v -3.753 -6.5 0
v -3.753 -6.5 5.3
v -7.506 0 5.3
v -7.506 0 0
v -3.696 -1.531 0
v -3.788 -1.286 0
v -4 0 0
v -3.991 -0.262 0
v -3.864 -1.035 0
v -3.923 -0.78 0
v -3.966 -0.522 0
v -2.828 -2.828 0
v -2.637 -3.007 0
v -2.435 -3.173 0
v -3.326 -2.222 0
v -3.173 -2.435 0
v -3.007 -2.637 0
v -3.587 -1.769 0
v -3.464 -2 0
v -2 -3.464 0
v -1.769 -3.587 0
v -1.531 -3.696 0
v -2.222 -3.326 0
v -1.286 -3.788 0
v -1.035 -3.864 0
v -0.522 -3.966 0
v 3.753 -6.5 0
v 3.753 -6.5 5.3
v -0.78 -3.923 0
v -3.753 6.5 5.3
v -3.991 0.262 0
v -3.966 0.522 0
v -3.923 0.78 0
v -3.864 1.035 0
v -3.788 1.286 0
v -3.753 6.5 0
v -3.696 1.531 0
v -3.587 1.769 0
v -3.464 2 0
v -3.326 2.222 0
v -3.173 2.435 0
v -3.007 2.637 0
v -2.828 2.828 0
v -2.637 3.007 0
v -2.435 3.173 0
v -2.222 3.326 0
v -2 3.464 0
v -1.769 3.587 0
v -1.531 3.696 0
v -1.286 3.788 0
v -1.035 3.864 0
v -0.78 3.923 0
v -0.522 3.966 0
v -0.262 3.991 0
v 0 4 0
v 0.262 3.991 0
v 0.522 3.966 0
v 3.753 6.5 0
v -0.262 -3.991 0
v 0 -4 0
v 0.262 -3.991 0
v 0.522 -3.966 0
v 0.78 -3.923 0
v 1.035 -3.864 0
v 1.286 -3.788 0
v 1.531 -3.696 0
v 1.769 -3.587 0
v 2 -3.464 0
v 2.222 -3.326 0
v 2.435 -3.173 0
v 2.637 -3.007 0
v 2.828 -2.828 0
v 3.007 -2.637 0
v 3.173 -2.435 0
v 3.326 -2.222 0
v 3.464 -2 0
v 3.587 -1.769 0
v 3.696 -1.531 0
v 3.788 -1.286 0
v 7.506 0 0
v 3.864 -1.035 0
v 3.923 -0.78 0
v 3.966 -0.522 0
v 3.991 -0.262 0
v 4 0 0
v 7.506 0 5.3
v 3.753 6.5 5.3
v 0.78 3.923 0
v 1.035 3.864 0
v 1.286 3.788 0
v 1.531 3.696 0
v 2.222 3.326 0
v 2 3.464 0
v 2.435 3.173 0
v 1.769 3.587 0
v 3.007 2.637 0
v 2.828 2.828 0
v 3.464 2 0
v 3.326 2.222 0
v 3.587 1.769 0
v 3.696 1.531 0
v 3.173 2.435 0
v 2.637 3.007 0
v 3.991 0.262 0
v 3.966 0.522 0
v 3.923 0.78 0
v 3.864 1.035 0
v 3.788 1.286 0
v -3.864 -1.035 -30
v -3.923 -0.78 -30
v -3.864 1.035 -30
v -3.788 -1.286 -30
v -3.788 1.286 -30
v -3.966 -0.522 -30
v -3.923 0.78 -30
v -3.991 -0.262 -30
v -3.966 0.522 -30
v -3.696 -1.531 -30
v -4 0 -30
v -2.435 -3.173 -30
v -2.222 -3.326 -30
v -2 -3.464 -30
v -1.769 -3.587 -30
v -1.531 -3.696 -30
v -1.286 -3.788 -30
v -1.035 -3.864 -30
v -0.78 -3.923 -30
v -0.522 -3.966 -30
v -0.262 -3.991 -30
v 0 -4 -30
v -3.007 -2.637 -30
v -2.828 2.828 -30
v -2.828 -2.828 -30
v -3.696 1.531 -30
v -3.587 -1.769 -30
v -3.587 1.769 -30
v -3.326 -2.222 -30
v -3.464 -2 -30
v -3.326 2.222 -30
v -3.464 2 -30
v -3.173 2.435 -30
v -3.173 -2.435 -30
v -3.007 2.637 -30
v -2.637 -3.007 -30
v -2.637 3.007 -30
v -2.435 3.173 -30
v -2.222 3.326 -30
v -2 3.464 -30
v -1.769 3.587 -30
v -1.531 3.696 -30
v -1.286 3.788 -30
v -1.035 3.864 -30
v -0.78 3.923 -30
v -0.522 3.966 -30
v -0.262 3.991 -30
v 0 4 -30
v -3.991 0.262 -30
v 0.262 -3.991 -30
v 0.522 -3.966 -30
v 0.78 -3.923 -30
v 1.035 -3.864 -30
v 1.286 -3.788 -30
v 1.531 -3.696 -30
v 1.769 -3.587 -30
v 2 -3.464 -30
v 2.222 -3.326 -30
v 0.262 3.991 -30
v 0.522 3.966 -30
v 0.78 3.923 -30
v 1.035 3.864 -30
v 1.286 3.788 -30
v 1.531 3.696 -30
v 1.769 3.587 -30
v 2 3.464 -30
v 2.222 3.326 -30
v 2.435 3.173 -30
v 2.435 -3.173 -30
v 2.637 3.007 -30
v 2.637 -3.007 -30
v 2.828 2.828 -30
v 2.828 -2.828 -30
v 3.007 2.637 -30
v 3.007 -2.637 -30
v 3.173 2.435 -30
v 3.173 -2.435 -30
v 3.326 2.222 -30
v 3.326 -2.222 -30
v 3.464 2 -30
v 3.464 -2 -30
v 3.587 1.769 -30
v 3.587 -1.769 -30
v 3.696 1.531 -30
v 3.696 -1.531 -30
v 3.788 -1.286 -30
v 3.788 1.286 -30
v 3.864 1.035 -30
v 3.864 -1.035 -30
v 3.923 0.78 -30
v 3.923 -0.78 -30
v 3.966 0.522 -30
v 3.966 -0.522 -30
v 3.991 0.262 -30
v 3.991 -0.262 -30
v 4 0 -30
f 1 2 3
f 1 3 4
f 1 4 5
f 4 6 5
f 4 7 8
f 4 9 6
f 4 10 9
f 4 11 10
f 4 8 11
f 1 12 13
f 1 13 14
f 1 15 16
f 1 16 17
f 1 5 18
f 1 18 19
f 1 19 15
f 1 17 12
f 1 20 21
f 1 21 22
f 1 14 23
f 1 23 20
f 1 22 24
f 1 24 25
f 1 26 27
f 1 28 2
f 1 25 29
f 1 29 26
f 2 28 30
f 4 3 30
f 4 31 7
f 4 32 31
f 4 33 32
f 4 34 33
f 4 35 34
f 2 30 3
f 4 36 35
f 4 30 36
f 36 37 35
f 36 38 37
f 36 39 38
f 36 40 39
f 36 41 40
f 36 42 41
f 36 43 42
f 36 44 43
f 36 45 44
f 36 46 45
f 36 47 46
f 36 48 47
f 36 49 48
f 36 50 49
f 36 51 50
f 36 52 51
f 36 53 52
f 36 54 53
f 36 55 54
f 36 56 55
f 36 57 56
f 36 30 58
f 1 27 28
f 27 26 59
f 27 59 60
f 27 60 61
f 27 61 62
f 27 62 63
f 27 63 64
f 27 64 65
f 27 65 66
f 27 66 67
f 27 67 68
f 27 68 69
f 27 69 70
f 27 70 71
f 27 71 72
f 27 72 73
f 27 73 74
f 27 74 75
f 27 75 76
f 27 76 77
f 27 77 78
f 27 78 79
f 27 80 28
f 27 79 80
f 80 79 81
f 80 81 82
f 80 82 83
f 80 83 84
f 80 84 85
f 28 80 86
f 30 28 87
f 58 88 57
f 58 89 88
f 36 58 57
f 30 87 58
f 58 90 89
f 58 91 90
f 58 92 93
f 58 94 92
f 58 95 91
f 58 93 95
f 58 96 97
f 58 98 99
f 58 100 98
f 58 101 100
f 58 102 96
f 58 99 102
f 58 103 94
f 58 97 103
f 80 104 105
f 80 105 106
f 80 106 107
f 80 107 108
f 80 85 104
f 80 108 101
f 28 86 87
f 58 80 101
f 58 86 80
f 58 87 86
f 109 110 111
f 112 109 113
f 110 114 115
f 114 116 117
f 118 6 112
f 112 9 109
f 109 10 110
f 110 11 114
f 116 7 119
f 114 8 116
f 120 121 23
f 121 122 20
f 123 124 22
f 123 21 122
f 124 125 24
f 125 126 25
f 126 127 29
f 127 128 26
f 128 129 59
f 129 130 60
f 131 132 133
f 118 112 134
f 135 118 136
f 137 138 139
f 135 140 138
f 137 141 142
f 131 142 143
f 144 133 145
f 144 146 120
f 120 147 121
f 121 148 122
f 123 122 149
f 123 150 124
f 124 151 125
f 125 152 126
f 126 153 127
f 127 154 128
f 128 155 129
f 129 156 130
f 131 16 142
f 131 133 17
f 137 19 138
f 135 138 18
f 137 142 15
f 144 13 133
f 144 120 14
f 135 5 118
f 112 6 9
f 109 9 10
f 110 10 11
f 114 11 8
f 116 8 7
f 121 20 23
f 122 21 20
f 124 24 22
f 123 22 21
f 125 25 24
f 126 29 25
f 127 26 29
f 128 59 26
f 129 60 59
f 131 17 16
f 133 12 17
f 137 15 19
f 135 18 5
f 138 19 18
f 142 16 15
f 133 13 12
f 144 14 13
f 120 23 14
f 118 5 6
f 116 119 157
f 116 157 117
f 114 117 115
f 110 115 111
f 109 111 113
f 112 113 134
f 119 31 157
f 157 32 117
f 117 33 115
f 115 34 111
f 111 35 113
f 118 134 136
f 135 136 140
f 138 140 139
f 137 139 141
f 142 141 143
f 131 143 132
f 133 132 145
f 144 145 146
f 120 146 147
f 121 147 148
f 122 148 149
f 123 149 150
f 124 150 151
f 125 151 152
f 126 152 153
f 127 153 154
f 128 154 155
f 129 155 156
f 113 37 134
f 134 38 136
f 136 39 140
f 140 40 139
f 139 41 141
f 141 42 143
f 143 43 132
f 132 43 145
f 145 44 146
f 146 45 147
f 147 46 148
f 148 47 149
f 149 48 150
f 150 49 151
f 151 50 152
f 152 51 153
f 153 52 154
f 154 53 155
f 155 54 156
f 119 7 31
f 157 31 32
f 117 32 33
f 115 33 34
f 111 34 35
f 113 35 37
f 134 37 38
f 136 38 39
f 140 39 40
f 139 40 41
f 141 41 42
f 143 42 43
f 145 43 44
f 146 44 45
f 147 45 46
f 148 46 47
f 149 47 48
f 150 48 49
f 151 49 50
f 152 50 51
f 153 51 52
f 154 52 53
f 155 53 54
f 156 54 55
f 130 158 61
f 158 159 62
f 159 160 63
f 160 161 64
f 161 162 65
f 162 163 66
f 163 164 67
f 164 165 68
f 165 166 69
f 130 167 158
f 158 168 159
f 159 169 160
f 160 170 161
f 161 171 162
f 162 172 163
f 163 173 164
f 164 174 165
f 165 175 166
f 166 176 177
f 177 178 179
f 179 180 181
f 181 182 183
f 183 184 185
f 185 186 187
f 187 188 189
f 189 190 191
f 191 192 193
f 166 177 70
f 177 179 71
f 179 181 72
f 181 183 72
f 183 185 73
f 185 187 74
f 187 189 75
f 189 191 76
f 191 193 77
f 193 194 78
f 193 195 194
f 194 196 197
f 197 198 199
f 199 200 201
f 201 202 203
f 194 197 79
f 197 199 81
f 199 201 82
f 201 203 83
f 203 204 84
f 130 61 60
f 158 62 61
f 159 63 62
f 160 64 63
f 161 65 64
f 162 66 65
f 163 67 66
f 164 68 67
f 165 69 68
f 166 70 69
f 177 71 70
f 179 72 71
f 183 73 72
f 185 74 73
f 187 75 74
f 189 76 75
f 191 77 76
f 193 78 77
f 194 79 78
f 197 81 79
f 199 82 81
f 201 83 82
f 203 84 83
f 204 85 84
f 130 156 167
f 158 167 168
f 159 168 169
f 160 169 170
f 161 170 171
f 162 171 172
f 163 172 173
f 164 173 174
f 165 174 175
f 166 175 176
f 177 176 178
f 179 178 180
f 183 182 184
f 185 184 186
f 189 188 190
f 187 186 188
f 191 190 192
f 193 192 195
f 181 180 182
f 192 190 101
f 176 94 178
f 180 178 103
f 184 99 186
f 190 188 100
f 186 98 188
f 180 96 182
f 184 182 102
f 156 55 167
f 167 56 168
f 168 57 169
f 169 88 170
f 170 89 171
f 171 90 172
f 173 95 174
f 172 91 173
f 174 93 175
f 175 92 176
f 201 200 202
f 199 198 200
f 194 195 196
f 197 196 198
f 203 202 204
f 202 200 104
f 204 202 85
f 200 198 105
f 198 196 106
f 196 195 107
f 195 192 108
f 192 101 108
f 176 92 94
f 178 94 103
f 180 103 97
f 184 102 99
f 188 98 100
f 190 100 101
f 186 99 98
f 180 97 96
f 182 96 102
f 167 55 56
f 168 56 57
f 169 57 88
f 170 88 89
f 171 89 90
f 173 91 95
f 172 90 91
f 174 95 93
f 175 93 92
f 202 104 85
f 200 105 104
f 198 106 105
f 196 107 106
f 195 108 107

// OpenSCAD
$fn = 96;

union() {
    cylinder(h = 5.3, r = 13 / (2 * cos(30)), $fn = 6);
    translate([0, 0, -30])
        cylinder(h = 30, d = 8);
}
